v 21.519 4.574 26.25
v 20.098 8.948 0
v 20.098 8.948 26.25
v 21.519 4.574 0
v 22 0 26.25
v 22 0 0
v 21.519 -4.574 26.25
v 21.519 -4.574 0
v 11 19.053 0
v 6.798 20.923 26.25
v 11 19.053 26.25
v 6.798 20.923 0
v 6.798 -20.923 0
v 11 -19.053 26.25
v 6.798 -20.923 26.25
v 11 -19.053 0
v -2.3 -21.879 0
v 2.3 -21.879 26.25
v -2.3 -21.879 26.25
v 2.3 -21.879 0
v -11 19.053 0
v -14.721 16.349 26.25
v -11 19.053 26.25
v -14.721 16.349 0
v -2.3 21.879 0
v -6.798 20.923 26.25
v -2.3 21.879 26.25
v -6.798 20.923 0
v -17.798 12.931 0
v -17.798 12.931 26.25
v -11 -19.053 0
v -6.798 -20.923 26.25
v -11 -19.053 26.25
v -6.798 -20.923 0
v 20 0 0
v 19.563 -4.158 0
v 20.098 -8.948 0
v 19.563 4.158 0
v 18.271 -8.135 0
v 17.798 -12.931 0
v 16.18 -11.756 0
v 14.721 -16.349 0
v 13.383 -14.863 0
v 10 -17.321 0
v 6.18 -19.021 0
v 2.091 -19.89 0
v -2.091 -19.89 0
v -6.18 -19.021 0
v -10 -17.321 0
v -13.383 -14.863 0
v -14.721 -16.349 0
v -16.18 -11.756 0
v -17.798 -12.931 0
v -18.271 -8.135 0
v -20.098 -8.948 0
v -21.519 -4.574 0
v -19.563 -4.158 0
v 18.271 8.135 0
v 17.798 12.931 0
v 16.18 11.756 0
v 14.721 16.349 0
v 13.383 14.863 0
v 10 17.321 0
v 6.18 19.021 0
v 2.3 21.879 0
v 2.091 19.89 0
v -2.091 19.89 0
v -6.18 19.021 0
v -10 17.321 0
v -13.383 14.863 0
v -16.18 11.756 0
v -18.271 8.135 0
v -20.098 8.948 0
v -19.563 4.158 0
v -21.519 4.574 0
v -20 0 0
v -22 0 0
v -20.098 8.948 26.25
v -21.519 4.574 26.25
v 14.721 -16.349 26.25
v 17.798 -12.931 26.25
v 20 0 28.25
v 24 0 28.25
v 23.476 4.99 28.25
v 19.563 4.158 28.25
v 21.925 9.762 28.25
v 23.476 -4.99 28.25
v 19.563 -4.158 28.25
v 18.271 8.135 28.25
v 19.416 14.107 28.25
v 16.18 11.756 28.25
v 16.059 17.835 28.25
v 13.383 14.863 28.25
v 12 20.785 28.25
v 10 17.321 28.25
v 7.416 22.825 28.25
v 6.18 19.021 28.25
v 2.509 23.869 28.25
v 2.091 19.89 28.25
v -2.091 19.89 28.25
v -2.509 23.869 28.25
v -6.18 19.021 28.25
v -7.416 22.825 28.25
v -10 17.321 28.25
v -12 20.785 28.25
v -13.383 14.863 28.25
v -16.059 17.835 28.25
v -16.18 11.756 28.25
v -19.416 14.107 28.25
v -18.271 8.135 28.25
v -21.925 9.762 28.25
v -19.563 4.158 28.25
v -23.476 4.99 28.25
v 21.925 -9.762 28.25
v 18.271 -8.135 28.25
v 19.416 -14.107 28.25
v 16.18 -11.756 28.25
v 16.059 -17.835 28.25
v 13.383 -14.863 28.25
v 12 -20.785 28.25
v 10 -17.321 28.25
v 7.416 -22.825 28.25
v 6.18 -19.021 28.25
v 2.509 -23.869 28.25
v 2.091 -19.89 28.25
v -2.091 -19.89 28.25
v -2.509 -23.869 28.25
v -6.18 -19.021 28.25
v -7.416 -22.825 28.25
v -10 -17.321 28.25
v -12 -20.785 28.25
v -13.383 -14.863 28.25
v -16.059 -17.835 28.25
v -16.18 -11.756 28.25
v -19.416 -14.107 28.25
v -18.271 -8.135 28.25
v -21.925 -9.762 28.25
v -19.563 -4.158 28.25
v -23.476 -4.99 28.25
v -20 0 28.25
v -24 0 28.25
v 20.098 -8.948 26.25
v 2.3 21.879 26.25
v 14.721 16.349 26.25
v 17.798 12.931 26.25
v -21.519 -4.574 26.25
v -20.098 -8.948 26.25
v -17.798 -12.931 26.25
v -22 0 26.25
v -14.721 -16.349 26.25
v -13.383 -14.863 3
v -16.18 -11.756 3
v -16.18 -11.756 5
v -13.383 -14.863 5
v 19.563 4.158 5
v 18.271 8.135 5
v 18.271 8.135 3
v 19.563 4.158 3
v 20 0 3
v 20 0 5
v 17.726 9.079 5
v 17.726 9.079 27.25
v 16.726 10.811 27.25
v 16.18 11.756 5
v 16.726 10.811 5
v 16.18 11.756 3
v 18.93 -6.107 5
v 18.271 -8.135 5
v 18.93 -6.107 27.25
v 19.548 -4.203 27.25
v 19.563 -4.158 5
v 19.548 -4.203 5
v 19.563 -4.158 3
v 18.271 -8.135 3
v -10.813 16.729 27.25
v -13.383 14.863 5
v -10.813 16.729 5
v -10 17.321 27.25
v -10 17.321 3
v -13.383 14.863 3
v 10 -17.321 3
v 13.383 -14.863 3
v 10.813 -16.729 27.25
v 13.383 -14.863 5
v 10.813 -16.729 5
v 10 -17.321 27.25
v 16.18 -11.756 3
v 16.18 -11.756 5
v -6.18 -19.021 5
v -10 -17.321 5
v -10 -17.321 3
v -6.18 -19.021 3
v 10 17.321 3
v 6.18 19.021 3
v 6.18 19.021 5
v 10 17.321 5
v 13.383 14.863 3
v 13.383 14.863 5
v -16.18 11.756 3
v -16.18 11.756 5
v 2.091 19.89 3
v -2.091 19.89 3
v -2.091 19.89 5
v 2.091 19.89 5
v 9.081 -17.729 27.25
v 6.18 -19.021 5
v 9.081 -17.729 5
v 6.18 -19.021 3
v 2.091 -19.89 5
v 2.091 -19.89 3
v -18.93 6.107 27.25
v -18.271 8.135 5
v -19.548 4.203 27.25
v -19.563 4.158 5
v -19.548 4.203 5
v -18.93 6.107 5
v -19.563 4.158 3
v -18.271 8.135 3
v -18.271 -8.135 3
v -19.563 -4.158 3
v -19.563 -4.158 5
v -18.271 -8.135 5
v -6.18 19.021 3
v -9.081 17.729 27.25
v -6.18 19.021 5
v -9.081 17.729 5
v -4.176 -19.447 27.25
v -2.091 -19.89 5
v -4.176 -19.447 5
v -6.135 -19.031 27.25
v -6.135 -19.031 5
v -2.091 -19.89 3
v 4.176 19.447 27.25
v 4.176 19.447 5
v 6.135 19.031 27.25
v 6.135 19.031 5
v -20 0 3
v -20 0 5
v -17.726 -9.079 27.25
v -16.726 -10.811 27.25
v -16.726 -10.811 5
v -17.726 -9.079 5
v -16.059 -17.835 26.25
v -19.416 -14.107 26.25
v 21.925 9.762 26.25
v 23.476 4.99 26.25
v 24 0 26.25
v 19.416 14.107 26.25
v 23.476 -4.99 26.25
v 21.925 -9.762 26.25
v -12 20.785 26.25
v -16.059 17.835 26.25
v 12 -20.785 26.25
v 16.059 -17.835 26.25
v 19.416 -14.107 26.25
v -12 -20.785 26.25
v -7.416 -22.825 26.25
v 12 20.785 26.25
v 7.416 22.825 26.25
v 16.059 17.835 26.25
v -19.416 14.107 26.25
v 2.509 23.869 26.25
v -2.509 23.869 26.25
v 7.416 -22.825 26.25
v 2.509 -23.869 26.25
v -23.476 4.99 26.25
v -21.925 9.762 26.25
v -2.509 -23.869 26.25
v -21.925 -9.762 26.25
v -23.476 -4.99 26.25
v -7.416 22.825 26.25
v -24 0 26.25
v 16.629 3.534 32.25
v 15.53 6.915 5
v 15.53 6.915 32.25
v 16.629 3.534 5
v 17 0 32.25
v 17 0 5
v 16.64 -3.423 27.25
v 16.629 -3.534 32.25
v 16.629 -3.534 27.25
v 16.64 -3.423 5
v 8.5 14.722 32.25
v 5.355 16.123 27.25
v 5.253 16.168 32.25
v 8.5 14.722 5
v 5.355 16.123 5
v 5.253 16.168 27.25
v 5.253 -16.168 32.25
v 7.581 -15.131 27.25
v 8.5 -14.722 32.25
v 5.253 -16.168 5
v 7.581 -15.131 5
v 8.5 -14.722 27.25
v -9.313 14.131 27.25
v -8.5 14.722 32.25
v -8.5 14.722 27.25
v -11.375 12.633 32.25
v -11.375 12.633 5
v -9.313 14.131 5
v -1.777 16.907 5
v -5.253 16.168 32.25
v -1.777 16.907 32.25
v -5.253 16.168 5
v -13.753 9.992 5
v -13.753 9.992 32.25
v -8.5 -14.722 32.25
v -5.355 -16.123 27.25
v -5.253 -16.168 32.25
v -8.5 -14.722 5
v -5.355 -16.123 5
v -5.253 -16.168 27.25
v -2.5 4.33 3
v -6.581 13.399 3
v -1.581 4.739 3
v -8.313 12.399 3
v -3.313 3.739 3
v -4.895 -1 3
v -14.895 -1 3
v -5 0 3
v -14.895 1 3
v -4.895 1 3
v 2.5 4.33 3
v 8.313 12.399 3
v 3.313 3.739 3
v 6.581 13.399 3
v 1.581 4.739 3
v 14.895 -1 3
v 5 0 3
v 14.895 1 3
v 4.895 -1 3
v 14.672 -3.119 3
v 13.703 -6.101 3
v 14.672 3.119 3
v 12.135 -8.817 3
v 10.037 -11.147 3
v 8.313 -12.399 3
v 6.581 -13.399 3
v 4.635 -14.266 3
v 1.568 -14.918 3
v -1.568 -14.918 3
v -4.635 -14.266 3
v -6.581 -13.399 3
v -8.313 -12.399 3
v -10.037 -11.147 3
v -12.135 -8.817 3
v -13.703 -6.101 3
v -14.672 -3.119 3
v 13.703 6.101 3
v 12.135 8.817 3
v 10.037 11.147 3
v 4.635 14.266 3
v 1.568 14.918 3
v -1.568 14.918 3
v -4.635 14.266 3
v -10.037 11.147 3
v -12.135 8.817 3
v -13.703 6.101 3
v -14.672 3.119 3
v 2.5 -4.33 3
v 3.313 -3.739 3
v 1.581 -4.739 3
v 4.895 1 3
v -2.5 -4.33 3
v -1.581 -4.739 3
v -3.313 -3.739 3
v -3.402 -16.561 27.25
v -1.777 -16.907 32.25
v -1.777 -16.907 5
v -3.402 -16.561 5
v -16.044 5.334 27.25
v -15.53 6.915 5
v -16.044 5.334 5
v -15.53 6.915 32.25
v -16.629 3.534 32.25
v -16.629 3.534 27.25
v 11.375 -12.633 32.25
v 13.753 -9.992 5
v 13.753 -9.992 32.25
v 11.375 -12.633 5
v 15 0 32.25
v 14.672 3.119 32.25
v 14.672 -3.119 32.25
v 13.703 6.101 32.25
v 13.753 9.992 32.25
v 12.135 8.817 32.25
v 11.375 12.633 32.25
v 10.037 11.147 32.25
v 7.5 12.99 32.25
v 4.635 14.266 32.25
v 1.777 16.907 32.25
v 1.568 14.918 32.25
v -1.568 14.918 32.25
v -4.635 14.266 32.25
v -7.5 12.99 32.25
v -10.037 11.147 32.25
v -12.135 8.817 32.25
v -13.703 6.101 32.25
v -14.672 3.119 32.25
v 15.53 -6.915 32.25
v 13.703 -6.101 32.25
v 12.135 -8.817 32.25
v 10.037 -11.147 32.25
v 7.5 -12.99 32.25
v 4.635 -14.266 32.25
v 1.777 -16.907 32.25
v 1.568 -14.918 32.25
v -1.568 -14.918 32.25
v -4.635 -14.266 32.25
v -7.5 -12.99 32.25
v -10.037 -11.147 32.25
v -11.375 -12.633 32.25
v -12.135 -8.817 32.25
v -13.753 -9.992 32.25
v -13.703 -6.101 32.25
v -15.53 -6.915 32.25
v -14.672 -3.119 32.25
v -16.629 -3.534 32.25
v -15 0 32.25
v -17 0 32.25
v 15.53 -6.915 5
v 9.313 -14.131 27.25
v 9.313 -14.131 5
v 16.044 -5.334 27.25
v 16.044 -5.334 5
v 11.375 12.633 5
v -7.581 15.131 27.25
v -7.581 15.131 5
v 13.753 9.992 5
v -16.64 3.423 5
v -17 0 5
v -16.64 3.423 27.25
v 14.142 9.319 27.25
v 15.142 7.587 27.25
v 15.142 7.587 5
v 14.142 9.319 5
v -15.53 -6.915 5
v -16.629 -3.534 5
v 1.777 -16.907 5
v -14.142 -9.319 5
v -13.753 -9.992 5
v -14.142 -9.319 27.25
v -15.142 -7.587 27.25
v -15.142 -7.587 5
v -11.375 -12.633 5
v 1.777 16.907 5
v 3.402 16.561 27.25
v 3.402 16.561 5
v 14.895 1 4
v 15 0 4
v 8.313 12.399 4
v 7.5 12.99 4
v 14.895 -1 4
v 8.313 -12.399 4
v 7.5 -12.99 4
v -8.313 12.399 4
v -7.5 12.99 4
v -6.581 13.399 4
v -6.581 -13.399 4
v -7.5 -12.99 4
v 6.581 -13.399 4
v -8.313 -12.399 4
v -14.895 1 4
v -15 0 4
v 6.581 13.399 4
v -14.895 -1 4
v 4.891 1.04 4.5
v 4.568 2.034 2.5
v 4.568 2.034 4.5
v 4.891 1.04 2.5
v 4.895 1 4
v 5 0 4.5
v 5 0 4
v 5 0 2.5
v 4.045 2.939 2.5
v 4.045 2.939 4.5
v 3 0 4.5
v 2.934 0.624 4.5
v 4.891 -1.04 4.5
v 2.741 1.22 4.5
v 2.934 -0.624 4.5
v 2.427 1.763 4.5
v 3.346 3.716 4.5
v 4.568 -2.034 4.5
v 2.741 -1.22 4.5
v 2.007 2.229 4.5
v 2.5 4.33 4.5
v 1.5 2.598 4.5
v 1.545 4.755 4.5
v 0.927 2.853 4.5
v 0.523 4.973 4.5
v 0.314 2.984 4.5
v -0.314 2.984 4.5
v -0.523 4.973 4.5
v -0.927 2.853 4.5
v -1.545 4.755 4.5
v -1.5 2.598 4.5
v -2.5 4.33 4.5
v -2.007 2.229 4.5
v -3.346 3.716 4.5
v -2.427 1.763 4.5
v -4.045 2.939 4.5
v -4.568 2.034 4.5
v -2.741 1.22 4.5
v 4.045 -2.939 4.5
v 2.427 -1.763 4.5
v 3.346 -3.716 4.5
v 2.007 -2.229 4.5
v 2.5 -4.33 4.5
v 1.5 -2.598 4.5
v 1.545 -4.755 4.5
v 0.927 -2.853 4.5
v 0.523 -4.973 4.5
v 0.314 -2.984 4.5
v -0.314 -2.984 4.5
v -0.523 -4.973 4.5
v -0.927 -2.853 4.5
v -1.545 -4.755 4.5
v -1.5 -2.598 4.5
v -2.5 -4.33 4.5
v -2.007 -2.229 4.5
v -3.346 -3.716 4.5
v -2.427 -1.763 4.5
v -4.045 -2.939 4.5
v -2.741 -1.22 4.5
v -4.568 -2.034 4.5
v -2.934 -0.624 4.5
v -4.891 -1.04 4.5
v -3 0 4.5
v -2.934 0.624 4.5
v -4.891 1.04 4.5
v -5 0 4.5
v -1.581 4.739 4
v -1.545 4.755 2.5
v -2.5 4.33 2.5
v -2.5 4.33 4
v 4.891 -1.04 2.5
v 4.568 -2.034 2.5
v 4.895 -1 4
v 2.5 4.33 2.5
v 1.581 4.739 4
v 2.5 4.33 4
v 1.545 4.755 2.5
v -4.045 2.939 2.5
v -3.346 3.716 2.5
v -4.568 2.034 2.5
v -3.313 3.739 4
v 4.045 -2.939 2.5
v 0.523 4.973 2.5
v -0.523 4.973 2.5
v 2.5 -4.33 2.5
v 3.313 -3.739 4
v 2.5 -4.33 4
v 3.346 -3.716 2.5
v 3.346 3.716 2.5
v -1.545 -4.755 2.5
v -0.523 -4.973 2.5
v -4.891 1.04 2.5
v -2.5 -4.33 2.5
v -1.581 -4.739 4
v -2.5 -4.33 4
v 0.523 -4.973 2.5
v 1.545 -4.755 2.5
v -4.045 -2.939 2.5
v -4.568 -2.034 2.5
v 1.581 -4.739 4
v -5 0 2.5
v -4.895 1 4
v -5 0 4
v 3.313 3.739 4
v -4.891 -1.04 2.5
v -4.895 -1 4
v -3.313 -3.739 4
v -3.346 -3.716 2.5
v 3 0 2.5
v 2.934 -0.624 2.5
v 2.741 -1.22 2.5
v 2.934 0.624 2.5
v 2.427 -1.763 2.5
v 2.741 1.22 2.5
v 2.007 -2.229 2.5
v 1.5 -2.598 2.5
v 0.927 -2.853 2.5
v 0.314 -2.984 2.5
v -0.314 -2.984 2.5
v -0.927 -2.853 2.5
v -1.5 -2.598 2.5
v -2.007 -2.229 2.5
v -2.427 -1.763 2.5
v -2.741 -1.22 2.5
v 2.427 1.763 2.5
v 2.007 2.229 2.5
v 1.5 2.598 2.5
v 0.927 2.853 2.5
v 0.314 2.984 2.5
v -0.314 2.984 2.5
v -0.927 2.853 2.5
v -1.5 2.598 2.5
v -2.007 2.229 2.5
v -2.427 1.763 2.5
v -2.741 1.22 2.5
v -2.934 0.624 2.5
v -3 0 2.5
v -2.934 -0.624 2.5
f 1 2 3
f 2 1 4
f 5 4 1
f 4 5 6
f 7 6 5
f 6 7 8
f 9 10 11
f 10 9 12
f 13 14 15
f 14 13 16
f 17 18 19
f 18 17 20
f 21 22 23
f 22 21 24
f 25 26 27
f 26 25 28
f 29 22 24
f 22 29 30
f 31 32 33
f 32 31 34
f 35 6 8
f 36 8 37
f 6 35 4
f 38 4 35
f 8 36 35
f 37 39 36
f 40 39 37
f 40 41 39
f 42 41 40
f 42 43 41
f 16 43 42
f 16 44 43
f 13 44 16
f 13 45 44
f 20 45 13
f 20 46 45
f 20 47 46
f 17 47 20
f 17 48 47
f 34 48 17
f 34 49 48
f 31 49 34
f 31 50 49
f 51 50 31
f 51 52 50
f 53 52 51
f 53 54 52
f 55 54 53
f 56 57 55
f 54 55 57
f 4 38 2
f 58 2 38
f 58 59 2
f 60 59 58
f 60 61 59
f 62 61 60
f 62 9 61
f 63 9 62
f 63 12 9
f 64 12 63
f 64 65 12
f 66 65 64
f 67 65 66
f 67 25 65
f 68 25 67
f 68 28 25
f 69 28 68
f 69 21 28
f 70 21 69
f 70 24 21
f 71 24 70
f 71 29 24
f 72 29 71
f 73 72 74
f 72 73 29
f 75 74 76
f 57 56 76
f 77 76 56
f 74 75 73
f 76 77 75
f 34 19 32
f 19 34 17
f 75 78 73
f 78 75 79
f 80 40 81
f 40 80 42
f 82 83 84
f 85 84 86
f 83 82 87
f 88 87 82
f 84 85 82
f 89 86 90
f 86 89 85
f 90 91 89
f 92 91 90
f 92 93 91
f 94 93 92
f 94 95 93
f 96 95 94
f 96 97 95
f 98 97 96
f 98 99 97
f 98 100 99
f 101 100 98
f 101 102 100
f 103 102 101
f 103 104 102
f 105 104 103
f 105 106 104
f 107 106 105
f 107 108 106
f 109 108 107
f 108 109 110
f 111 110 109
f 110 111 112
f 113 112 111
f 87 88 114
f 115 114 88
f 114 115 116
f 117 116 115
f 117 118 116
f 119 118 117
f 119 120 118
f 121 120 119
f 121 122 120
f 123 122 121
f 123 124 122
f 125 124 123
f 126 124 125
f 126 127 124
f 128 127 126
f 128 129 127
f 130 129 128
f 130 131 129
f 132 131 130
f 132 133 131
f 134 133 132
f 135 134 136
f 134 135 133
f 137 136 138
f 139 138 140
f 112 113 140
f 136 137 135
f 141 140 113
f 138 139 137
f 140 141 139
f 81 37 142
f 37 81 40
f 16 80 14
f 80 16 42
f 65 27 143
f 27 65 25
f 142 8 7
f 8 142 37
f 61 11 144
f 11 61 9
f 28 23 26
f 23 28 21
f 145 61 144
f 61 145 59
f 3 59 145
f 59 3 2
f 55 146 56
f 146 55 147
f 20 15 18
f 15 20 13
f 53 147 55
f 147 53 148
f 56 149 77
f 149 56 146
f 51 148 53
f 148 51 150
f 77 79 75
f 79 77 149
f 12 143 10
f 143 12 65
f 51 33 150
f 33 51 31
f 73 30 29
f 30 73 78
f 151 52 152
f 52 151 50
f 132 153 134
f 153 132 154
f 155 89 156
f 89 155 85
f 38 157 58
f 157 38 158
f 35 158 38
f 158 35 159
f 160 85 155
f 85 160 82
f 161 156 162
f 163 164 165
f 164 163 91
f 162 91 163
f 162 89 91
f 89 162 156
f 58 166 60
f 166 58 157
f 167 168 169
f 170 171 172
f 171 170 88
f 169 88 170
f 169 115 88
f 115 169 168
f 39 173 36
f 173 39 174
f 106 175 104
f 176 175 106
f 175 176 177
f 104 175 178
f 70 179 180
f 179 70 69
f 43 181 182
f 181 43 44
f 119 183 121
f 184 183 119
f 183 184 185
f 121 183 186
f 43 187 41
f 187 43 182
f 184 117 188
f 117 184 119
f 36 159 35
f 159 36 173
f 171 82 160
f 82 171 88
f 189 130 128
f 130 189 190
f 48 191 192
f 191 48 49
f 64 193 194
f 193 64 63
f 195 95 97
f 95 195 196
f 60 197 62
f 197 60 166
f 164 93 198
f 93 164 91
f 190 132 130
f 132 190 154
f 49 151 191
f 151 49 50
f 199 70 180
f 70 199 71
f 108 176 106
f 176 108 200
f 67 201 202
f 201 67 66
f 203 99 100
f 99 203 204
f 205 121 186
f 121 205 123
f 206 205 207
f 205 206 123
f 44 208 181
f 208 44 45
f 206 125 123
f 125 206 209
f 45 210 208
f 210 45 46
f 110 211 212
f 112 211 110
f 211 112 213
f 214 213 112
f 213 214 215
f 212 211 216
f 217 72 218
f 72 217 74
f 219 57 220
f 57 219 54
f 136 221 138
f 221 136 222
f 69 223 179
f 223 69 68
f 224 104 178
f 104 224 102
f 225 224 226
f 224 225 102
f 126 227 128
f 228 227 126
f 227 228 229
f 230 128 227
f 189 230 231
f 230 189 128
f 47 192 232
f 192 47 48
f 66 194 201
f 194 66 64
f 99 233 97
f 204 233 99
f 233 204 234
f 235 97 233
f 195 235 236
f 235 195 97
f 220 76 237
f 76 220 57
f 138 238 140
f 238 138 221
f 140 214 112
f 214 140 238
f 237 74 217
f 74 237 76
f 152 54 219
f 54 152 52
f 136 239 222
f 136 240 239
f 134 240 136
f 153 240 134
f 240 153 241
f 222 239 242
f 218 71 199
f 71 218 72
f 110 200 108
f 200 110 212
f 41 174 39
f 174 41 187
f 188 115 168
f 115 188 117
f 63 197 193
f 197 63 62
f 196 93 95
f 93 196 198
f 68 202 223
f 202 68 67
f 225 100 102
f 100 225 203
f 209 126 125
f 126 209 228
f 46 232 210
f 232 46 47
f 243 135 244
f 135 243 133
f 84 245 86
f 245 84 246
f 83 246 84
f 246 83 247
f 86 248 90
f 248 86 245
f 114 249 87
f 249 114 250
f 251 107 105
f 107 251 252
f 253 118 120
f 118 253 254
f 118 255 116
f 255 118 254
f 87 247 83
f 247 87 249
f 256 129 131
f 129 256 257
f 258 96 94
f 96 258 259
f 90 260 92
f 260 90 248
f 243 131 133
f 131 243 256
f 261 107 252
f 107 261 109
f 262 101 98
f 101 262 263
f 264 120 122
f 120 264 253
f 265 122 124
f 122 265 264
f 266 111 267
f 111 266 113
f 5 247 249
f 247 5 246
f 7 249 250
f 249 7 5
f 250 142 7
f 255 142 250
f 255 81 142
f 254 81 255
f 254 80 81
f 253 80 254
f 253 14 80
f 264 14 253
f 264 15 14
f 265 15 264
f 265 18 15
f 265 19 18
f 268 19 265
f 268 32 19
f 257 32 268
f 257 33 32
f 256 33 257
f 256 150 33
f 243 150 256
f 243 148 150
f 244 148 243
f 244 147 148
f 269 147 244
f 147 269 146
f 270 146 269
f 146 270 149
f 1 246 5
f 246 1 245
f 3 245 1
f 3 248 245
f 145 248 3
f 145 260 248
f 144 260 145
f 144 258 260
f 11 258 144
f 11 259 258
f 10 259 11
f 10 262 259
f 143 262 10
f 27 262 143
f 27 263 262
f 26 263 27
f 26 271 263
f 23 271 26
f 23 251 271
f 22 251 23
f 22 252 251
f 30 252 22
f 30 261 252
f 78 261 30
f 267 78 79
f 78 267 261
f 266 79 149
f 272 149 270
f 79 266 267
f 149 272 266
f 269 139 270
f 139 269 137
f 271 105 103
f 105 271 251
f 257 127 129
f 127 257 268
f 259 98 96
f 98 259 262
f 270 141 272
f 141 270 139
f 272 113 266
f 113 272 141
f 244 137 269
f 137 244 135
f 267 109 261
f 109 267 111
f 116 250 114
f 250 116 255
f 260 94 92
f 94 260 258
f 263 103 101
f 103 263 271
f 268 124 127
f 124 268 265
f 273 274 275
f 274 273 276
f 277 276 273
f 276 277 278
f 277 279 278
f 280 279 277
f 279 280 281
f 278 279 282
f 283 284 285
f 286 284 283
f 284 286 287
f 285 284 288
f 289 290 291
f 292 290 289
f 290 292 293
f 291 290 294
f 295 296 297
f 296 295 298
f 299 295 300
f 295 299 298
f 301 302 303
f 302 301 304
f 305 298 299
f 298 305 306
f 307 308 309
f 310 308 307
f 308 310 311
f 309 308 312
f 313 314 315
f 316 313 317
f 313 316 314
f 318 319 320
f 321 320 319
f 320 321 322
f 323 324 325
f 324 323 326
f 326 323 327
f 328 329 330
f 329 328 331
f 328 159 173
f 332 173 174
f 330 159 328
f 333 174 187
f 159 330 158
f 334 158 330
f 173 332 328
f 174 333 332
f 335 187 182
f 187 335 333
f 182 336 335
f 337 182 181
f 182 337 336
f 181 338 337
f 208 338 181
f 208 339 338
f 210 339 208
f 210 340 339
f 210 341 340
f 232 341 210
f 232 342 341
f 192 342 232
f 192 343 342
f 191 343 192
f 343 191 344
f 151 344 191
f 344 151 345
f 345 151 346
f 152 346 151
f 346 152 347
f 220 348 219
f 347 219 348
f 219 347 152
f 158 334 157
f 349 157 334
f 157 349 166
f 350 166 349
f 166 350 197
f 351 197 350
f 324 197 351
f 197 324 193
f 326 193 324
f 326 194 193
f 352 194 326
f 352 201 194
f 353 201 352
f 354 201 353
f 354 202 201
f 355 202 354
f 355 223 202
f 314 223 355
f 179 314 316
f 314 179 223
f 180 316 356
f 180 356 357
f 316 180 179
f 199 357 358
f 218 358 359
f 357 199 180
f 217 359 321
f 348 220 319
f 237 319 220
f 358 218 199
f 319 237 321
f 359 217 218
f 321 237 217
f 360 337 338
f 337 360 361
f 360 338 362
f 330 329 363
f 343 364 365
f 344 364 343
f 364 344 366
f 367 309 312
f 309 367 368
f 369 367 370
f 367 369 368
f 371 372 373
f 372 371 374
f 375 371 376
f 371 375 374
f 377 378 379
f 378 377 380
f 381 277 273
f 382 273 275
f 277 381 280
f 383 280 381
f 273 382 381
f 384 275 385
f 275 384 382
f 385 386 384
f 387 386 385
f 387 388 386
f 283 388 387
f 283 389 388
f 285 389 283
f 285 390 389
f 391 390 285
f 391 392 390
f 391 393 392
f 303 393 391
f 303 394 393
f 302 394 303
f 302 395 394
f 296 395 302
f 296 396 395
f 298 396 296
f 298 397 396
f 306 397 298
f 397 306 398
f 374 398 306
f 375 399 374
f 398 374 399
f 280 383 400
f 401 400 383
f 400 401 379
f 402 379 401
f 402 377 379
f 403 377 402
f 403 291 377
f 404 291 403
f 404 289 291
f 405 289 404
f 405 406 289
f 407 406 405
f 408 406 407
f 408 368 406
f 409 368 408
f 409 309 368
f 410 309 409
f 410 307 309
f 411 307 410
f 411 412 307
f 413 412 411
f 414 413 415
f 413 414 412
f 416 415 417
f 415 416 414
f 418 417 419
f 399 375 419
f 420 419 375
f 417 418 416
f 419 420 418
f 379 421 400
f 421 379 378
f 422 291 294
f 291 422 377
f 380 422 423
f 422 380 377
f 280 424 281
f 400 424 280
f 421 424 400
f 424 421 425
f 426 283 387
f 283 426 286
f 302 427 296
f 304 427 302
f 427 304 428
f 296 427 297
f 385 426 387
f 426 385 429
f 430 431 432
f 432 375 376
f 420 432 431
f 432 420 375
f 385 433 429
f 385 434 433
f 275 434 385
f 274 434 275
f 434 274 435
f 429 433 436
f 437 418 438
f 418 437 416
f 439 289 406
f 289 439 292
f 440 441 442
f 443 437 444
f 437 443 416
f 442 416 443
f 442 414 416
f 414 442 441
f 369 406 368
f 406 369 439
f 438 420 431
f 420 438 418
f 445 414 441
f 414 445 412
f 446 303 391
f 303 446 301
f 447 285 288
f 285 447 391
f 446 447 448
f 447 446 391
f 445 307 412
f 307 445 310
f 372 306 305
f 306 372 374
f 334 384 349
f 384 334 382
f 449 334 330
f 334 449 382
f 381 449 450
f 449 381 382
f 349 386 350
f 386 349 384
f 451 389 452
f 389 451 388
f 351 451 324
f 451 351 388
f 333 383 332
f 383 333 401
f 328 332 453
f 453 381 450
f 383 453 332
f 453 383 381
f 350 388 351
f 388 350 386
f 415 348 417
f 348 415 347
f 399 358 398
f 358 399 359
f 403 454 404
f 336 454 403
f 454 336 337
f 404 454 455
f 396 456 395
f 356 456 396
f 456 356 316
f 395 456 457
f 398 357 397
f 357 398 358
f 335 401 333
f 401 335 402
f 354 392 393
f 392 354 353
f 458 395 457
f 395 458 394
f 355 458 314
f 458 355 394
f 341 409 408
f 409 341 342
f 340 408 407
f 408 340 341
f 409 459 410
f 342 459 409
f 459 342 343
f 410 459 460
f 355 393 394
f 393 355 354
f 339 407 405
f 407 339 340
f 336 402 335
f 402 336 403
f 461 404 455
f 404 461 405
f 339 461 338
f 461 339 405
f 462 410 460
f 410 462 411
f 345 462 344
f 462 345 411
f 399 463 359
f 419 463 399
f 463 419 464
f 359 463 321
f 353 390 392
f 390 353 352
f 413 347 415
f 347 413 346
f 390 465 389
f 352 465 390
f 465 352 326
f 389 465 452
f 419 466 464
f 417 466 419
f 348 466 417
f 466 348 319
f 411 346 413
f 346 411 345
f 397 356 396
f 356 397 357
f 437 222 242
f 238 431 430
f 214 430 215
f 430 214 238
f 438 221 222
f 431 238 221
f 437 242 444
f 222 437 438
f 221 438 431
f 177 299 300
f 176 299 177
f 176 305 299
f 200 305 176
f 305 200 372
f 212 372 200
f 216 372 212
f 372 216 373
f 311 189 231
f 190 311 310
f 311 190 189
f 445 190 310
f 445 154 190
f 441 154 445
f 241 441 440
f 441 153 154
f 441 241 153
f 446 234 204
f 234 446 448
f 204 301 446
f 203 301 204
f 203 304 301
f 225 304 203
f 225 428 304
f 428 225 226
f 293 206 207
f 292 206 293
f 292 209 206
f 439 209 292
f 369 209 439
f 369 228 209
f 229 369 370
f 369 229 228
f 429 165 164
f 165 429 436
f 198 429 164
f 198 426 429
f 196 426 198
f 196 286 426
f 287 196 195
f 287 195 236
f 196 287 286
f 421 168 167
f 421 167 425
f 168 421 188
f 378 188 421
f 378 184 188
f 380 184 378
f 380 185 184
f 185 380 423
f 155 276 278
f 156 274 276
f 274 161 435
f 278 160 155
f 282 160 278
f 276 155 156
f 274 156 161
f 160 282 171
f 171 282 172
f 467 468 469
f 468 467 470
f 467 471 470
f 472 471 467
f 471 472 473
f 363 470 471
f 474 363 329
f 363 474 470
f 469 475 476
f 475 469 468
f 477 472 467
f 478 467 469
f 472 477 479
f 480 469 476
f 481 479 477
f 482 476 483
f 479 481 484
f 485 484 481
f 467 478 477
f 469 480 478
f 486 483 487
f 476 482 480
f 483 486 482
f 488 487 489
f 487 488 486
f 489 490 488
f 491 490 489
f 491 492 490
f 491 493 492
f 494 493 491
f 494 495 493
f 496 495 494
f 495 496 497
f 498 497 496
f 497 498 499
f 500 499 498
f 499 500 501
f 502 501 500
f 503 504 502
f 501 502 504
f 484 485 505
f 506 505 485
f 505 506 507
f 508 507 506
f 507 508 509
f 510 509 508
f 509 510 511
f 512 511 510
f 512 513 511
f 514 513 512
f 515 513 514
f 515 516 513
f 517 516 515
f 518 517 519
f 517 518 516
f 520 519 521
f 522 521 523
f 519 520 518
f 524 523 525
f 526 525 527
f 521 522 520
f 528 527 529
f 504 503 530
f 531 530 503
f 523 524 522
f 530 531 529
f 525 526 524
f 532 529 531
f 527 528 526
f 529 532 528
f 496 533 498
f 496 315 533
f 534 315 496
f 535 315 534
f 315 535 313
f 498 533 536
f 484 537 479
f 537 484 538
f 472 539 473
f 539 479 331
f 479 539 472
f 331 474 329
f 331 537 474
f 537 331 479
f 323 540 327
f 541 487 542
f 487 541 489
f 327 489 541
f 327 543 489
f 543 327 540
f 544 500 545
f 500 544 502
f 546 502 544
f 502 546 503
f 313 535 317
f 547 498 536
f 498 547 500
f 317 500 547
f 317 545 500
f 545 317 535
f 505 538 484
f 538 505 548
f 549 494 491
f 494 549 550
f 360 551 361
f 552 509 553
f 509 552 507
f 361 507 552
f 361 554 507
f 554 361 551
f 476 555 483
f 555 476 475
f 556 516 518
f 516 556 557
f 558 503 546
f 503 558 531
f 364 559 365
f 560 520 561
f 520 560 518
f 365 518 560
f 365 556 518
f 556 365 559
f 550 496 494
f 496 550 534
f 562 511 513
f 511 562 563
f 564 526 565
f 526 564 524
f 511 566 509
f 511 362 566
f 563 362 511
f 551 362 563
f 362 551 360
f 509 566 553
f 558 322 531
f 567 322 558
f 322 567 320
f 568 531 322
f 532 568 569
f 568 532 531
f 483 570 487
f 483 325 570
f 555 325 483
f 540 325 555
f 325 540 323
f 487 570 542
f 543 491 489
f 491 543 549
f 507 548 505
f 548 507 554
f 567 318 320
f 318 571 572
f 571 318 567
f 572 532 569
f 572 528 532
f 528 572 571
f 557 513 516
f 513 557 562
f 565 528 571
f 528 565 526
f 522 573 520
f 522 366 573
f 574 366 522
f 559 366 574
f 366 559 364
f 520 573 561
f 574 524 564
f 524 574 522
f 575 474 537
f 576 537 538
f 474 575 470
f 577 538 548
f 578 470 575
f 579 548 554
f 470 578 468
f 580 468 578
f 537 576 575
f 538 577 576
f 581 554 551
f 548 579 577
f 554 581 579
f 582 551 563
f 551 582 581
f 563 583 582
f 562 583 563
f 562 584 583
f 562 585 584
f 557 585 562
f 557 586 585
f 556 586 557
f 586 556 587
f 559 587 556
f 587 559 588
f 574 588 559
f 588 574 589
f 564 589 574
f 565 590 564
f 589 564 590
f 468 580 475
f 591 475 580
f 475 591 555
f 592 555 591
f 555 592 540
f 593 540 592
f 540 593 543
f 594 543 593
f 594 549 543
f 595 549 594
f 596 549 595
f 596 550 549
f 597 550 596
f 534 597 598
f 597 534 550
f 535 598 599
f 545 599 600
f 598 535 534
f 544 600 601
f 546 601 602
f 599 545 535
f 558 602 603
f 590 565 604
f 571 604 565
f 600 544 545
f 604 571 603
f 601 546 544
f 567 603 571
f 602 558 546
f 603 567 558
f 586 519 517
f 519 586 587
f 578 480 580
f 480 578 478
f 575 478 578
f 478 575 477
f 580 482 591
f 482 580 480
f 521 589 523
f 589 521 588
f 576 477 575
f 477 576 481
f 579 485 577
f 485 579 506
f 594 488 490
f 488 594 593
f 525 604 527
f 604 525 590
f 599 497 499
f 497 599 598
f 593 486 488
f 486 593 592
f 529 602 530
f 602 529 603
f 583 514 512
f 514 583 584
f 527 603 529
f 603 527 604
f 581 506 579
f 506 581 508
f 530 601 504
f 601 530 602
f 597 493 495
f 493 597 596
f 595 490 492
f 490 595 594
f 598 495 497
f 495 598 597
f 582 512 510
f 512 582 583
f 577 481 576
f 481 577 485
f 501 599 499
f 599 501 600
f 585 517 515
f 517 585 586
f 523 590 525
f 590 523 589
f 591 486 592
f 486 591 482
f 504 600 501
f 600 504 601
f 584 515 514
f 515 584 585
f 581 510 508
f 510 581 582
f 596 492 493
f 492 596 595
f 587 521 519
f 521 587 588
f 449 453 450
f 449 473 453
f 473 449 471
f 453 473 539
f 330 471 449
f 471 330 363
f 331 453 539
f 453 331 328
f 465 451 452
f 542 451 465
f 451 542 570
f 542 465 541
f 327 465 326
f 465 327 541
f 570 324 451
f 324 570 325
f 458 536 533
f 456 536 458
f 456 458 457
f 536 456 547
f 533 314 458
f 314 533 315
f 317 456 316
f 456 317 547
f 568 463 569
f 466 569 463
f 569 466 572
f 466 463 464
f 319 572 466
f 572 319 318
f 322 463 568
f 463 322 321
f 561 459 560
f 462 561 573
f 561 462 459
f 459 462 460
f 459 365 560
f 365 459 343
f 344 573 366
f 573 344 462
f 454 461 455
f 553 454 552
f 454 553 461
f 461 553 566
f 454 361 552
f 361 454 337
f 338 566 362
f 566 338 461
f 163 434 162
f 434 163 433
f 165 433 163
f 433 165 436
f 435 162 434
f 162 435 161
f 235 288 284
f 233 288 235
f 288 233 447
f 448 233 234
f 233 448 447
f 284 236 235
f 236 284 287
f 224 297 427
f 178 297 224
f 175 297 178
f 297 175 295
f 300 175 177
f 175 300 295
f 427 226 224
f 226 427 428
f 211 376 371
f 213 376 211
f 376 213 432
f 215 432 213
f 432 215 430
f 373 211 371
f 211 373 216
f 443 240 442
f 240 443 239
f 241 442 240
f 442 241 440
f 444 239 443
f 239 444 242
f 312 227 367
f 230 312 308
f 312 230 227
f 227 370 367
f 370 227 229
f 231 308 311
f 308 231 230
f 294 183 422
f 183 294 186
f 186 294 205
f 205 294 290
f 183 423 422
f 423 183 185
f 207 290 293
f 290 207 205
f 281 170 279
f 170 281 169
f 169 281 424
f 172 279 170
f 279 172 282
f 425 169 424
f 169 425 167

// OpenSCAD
res=30;

difference(){
    cylinder(28.25,22,22,$fn=res);
    #cylinder(28.25,20,20,$fn=res);
}

difference(){
    translate([0,0,26.25])cylinder(2,24,24,$fn=res);
    #translate([0,0,26.25])cylinder(2,22,22,$fn=res);
}

difference(){
    translate([0,0,3])cylinder(28.25+1,17,17,$fn=res);
    #translate([0,0,3])cylinder(28.25+1,15,15,$fn=res);
}
difference(){
    translate([0,0,3])cylinder(2,22,22,$fn=res);
    #translate([0,0,3])cylinder(2,15,15,$fn=res);
}

difference(){
    translate([0,0,3-0.5])cylinder(2,5,5,$fn=res);
    #translate([0,0,3-0.5])cylinder(2,3,3,$fn=res);
}

rotate([0,0,0])translate([4,-1,3])cube([16-4,2,1]);
rotate([0,0,60])translate([4,-1,3])cube([16-4,2,1]);
rotate([0,0,2*60])translate([4,-1,3])cube([16-4,2,1]);
rotate([0,0,3*60])translate([4,-1,3])cube([16-4,2,1]);
rotate([0,0,4*60])translate([4,-1,3])cube([16-4,2,1]);
rotate([0,0,5*60])translate([4,-1,3])cube([16-4,2,1]);

rotate([0,0,30])translate([16,-1,3])cube([21-16,2,28.25-4]);
rotate([0,0,30+45])translate([16,-1,3])cube([21-16,2,28.25-4]);
rotate([0,0,30+2*45])translate([16,-1,3])cube([21-16,2,28.25-4]);
rotate([0,0,30+3*45])translate([16,-1,3])cube([21-16,2,28.25-4]);
rotate([0,0,30+4*45])translate([16,-1,3])cube([21-16,2,28.25-4]);
rotate([0,0,30+5*45])translate([16,-1,3])cube([21-16,2,28.25-4]);
rotate([0,0,30+6*45])translate([16,-1,3])cube([21-16,2,28.25-4]);
rotate([0,0,30+7*45])translate([16,-1,3])cube([21-16,2,28.25-4]);
